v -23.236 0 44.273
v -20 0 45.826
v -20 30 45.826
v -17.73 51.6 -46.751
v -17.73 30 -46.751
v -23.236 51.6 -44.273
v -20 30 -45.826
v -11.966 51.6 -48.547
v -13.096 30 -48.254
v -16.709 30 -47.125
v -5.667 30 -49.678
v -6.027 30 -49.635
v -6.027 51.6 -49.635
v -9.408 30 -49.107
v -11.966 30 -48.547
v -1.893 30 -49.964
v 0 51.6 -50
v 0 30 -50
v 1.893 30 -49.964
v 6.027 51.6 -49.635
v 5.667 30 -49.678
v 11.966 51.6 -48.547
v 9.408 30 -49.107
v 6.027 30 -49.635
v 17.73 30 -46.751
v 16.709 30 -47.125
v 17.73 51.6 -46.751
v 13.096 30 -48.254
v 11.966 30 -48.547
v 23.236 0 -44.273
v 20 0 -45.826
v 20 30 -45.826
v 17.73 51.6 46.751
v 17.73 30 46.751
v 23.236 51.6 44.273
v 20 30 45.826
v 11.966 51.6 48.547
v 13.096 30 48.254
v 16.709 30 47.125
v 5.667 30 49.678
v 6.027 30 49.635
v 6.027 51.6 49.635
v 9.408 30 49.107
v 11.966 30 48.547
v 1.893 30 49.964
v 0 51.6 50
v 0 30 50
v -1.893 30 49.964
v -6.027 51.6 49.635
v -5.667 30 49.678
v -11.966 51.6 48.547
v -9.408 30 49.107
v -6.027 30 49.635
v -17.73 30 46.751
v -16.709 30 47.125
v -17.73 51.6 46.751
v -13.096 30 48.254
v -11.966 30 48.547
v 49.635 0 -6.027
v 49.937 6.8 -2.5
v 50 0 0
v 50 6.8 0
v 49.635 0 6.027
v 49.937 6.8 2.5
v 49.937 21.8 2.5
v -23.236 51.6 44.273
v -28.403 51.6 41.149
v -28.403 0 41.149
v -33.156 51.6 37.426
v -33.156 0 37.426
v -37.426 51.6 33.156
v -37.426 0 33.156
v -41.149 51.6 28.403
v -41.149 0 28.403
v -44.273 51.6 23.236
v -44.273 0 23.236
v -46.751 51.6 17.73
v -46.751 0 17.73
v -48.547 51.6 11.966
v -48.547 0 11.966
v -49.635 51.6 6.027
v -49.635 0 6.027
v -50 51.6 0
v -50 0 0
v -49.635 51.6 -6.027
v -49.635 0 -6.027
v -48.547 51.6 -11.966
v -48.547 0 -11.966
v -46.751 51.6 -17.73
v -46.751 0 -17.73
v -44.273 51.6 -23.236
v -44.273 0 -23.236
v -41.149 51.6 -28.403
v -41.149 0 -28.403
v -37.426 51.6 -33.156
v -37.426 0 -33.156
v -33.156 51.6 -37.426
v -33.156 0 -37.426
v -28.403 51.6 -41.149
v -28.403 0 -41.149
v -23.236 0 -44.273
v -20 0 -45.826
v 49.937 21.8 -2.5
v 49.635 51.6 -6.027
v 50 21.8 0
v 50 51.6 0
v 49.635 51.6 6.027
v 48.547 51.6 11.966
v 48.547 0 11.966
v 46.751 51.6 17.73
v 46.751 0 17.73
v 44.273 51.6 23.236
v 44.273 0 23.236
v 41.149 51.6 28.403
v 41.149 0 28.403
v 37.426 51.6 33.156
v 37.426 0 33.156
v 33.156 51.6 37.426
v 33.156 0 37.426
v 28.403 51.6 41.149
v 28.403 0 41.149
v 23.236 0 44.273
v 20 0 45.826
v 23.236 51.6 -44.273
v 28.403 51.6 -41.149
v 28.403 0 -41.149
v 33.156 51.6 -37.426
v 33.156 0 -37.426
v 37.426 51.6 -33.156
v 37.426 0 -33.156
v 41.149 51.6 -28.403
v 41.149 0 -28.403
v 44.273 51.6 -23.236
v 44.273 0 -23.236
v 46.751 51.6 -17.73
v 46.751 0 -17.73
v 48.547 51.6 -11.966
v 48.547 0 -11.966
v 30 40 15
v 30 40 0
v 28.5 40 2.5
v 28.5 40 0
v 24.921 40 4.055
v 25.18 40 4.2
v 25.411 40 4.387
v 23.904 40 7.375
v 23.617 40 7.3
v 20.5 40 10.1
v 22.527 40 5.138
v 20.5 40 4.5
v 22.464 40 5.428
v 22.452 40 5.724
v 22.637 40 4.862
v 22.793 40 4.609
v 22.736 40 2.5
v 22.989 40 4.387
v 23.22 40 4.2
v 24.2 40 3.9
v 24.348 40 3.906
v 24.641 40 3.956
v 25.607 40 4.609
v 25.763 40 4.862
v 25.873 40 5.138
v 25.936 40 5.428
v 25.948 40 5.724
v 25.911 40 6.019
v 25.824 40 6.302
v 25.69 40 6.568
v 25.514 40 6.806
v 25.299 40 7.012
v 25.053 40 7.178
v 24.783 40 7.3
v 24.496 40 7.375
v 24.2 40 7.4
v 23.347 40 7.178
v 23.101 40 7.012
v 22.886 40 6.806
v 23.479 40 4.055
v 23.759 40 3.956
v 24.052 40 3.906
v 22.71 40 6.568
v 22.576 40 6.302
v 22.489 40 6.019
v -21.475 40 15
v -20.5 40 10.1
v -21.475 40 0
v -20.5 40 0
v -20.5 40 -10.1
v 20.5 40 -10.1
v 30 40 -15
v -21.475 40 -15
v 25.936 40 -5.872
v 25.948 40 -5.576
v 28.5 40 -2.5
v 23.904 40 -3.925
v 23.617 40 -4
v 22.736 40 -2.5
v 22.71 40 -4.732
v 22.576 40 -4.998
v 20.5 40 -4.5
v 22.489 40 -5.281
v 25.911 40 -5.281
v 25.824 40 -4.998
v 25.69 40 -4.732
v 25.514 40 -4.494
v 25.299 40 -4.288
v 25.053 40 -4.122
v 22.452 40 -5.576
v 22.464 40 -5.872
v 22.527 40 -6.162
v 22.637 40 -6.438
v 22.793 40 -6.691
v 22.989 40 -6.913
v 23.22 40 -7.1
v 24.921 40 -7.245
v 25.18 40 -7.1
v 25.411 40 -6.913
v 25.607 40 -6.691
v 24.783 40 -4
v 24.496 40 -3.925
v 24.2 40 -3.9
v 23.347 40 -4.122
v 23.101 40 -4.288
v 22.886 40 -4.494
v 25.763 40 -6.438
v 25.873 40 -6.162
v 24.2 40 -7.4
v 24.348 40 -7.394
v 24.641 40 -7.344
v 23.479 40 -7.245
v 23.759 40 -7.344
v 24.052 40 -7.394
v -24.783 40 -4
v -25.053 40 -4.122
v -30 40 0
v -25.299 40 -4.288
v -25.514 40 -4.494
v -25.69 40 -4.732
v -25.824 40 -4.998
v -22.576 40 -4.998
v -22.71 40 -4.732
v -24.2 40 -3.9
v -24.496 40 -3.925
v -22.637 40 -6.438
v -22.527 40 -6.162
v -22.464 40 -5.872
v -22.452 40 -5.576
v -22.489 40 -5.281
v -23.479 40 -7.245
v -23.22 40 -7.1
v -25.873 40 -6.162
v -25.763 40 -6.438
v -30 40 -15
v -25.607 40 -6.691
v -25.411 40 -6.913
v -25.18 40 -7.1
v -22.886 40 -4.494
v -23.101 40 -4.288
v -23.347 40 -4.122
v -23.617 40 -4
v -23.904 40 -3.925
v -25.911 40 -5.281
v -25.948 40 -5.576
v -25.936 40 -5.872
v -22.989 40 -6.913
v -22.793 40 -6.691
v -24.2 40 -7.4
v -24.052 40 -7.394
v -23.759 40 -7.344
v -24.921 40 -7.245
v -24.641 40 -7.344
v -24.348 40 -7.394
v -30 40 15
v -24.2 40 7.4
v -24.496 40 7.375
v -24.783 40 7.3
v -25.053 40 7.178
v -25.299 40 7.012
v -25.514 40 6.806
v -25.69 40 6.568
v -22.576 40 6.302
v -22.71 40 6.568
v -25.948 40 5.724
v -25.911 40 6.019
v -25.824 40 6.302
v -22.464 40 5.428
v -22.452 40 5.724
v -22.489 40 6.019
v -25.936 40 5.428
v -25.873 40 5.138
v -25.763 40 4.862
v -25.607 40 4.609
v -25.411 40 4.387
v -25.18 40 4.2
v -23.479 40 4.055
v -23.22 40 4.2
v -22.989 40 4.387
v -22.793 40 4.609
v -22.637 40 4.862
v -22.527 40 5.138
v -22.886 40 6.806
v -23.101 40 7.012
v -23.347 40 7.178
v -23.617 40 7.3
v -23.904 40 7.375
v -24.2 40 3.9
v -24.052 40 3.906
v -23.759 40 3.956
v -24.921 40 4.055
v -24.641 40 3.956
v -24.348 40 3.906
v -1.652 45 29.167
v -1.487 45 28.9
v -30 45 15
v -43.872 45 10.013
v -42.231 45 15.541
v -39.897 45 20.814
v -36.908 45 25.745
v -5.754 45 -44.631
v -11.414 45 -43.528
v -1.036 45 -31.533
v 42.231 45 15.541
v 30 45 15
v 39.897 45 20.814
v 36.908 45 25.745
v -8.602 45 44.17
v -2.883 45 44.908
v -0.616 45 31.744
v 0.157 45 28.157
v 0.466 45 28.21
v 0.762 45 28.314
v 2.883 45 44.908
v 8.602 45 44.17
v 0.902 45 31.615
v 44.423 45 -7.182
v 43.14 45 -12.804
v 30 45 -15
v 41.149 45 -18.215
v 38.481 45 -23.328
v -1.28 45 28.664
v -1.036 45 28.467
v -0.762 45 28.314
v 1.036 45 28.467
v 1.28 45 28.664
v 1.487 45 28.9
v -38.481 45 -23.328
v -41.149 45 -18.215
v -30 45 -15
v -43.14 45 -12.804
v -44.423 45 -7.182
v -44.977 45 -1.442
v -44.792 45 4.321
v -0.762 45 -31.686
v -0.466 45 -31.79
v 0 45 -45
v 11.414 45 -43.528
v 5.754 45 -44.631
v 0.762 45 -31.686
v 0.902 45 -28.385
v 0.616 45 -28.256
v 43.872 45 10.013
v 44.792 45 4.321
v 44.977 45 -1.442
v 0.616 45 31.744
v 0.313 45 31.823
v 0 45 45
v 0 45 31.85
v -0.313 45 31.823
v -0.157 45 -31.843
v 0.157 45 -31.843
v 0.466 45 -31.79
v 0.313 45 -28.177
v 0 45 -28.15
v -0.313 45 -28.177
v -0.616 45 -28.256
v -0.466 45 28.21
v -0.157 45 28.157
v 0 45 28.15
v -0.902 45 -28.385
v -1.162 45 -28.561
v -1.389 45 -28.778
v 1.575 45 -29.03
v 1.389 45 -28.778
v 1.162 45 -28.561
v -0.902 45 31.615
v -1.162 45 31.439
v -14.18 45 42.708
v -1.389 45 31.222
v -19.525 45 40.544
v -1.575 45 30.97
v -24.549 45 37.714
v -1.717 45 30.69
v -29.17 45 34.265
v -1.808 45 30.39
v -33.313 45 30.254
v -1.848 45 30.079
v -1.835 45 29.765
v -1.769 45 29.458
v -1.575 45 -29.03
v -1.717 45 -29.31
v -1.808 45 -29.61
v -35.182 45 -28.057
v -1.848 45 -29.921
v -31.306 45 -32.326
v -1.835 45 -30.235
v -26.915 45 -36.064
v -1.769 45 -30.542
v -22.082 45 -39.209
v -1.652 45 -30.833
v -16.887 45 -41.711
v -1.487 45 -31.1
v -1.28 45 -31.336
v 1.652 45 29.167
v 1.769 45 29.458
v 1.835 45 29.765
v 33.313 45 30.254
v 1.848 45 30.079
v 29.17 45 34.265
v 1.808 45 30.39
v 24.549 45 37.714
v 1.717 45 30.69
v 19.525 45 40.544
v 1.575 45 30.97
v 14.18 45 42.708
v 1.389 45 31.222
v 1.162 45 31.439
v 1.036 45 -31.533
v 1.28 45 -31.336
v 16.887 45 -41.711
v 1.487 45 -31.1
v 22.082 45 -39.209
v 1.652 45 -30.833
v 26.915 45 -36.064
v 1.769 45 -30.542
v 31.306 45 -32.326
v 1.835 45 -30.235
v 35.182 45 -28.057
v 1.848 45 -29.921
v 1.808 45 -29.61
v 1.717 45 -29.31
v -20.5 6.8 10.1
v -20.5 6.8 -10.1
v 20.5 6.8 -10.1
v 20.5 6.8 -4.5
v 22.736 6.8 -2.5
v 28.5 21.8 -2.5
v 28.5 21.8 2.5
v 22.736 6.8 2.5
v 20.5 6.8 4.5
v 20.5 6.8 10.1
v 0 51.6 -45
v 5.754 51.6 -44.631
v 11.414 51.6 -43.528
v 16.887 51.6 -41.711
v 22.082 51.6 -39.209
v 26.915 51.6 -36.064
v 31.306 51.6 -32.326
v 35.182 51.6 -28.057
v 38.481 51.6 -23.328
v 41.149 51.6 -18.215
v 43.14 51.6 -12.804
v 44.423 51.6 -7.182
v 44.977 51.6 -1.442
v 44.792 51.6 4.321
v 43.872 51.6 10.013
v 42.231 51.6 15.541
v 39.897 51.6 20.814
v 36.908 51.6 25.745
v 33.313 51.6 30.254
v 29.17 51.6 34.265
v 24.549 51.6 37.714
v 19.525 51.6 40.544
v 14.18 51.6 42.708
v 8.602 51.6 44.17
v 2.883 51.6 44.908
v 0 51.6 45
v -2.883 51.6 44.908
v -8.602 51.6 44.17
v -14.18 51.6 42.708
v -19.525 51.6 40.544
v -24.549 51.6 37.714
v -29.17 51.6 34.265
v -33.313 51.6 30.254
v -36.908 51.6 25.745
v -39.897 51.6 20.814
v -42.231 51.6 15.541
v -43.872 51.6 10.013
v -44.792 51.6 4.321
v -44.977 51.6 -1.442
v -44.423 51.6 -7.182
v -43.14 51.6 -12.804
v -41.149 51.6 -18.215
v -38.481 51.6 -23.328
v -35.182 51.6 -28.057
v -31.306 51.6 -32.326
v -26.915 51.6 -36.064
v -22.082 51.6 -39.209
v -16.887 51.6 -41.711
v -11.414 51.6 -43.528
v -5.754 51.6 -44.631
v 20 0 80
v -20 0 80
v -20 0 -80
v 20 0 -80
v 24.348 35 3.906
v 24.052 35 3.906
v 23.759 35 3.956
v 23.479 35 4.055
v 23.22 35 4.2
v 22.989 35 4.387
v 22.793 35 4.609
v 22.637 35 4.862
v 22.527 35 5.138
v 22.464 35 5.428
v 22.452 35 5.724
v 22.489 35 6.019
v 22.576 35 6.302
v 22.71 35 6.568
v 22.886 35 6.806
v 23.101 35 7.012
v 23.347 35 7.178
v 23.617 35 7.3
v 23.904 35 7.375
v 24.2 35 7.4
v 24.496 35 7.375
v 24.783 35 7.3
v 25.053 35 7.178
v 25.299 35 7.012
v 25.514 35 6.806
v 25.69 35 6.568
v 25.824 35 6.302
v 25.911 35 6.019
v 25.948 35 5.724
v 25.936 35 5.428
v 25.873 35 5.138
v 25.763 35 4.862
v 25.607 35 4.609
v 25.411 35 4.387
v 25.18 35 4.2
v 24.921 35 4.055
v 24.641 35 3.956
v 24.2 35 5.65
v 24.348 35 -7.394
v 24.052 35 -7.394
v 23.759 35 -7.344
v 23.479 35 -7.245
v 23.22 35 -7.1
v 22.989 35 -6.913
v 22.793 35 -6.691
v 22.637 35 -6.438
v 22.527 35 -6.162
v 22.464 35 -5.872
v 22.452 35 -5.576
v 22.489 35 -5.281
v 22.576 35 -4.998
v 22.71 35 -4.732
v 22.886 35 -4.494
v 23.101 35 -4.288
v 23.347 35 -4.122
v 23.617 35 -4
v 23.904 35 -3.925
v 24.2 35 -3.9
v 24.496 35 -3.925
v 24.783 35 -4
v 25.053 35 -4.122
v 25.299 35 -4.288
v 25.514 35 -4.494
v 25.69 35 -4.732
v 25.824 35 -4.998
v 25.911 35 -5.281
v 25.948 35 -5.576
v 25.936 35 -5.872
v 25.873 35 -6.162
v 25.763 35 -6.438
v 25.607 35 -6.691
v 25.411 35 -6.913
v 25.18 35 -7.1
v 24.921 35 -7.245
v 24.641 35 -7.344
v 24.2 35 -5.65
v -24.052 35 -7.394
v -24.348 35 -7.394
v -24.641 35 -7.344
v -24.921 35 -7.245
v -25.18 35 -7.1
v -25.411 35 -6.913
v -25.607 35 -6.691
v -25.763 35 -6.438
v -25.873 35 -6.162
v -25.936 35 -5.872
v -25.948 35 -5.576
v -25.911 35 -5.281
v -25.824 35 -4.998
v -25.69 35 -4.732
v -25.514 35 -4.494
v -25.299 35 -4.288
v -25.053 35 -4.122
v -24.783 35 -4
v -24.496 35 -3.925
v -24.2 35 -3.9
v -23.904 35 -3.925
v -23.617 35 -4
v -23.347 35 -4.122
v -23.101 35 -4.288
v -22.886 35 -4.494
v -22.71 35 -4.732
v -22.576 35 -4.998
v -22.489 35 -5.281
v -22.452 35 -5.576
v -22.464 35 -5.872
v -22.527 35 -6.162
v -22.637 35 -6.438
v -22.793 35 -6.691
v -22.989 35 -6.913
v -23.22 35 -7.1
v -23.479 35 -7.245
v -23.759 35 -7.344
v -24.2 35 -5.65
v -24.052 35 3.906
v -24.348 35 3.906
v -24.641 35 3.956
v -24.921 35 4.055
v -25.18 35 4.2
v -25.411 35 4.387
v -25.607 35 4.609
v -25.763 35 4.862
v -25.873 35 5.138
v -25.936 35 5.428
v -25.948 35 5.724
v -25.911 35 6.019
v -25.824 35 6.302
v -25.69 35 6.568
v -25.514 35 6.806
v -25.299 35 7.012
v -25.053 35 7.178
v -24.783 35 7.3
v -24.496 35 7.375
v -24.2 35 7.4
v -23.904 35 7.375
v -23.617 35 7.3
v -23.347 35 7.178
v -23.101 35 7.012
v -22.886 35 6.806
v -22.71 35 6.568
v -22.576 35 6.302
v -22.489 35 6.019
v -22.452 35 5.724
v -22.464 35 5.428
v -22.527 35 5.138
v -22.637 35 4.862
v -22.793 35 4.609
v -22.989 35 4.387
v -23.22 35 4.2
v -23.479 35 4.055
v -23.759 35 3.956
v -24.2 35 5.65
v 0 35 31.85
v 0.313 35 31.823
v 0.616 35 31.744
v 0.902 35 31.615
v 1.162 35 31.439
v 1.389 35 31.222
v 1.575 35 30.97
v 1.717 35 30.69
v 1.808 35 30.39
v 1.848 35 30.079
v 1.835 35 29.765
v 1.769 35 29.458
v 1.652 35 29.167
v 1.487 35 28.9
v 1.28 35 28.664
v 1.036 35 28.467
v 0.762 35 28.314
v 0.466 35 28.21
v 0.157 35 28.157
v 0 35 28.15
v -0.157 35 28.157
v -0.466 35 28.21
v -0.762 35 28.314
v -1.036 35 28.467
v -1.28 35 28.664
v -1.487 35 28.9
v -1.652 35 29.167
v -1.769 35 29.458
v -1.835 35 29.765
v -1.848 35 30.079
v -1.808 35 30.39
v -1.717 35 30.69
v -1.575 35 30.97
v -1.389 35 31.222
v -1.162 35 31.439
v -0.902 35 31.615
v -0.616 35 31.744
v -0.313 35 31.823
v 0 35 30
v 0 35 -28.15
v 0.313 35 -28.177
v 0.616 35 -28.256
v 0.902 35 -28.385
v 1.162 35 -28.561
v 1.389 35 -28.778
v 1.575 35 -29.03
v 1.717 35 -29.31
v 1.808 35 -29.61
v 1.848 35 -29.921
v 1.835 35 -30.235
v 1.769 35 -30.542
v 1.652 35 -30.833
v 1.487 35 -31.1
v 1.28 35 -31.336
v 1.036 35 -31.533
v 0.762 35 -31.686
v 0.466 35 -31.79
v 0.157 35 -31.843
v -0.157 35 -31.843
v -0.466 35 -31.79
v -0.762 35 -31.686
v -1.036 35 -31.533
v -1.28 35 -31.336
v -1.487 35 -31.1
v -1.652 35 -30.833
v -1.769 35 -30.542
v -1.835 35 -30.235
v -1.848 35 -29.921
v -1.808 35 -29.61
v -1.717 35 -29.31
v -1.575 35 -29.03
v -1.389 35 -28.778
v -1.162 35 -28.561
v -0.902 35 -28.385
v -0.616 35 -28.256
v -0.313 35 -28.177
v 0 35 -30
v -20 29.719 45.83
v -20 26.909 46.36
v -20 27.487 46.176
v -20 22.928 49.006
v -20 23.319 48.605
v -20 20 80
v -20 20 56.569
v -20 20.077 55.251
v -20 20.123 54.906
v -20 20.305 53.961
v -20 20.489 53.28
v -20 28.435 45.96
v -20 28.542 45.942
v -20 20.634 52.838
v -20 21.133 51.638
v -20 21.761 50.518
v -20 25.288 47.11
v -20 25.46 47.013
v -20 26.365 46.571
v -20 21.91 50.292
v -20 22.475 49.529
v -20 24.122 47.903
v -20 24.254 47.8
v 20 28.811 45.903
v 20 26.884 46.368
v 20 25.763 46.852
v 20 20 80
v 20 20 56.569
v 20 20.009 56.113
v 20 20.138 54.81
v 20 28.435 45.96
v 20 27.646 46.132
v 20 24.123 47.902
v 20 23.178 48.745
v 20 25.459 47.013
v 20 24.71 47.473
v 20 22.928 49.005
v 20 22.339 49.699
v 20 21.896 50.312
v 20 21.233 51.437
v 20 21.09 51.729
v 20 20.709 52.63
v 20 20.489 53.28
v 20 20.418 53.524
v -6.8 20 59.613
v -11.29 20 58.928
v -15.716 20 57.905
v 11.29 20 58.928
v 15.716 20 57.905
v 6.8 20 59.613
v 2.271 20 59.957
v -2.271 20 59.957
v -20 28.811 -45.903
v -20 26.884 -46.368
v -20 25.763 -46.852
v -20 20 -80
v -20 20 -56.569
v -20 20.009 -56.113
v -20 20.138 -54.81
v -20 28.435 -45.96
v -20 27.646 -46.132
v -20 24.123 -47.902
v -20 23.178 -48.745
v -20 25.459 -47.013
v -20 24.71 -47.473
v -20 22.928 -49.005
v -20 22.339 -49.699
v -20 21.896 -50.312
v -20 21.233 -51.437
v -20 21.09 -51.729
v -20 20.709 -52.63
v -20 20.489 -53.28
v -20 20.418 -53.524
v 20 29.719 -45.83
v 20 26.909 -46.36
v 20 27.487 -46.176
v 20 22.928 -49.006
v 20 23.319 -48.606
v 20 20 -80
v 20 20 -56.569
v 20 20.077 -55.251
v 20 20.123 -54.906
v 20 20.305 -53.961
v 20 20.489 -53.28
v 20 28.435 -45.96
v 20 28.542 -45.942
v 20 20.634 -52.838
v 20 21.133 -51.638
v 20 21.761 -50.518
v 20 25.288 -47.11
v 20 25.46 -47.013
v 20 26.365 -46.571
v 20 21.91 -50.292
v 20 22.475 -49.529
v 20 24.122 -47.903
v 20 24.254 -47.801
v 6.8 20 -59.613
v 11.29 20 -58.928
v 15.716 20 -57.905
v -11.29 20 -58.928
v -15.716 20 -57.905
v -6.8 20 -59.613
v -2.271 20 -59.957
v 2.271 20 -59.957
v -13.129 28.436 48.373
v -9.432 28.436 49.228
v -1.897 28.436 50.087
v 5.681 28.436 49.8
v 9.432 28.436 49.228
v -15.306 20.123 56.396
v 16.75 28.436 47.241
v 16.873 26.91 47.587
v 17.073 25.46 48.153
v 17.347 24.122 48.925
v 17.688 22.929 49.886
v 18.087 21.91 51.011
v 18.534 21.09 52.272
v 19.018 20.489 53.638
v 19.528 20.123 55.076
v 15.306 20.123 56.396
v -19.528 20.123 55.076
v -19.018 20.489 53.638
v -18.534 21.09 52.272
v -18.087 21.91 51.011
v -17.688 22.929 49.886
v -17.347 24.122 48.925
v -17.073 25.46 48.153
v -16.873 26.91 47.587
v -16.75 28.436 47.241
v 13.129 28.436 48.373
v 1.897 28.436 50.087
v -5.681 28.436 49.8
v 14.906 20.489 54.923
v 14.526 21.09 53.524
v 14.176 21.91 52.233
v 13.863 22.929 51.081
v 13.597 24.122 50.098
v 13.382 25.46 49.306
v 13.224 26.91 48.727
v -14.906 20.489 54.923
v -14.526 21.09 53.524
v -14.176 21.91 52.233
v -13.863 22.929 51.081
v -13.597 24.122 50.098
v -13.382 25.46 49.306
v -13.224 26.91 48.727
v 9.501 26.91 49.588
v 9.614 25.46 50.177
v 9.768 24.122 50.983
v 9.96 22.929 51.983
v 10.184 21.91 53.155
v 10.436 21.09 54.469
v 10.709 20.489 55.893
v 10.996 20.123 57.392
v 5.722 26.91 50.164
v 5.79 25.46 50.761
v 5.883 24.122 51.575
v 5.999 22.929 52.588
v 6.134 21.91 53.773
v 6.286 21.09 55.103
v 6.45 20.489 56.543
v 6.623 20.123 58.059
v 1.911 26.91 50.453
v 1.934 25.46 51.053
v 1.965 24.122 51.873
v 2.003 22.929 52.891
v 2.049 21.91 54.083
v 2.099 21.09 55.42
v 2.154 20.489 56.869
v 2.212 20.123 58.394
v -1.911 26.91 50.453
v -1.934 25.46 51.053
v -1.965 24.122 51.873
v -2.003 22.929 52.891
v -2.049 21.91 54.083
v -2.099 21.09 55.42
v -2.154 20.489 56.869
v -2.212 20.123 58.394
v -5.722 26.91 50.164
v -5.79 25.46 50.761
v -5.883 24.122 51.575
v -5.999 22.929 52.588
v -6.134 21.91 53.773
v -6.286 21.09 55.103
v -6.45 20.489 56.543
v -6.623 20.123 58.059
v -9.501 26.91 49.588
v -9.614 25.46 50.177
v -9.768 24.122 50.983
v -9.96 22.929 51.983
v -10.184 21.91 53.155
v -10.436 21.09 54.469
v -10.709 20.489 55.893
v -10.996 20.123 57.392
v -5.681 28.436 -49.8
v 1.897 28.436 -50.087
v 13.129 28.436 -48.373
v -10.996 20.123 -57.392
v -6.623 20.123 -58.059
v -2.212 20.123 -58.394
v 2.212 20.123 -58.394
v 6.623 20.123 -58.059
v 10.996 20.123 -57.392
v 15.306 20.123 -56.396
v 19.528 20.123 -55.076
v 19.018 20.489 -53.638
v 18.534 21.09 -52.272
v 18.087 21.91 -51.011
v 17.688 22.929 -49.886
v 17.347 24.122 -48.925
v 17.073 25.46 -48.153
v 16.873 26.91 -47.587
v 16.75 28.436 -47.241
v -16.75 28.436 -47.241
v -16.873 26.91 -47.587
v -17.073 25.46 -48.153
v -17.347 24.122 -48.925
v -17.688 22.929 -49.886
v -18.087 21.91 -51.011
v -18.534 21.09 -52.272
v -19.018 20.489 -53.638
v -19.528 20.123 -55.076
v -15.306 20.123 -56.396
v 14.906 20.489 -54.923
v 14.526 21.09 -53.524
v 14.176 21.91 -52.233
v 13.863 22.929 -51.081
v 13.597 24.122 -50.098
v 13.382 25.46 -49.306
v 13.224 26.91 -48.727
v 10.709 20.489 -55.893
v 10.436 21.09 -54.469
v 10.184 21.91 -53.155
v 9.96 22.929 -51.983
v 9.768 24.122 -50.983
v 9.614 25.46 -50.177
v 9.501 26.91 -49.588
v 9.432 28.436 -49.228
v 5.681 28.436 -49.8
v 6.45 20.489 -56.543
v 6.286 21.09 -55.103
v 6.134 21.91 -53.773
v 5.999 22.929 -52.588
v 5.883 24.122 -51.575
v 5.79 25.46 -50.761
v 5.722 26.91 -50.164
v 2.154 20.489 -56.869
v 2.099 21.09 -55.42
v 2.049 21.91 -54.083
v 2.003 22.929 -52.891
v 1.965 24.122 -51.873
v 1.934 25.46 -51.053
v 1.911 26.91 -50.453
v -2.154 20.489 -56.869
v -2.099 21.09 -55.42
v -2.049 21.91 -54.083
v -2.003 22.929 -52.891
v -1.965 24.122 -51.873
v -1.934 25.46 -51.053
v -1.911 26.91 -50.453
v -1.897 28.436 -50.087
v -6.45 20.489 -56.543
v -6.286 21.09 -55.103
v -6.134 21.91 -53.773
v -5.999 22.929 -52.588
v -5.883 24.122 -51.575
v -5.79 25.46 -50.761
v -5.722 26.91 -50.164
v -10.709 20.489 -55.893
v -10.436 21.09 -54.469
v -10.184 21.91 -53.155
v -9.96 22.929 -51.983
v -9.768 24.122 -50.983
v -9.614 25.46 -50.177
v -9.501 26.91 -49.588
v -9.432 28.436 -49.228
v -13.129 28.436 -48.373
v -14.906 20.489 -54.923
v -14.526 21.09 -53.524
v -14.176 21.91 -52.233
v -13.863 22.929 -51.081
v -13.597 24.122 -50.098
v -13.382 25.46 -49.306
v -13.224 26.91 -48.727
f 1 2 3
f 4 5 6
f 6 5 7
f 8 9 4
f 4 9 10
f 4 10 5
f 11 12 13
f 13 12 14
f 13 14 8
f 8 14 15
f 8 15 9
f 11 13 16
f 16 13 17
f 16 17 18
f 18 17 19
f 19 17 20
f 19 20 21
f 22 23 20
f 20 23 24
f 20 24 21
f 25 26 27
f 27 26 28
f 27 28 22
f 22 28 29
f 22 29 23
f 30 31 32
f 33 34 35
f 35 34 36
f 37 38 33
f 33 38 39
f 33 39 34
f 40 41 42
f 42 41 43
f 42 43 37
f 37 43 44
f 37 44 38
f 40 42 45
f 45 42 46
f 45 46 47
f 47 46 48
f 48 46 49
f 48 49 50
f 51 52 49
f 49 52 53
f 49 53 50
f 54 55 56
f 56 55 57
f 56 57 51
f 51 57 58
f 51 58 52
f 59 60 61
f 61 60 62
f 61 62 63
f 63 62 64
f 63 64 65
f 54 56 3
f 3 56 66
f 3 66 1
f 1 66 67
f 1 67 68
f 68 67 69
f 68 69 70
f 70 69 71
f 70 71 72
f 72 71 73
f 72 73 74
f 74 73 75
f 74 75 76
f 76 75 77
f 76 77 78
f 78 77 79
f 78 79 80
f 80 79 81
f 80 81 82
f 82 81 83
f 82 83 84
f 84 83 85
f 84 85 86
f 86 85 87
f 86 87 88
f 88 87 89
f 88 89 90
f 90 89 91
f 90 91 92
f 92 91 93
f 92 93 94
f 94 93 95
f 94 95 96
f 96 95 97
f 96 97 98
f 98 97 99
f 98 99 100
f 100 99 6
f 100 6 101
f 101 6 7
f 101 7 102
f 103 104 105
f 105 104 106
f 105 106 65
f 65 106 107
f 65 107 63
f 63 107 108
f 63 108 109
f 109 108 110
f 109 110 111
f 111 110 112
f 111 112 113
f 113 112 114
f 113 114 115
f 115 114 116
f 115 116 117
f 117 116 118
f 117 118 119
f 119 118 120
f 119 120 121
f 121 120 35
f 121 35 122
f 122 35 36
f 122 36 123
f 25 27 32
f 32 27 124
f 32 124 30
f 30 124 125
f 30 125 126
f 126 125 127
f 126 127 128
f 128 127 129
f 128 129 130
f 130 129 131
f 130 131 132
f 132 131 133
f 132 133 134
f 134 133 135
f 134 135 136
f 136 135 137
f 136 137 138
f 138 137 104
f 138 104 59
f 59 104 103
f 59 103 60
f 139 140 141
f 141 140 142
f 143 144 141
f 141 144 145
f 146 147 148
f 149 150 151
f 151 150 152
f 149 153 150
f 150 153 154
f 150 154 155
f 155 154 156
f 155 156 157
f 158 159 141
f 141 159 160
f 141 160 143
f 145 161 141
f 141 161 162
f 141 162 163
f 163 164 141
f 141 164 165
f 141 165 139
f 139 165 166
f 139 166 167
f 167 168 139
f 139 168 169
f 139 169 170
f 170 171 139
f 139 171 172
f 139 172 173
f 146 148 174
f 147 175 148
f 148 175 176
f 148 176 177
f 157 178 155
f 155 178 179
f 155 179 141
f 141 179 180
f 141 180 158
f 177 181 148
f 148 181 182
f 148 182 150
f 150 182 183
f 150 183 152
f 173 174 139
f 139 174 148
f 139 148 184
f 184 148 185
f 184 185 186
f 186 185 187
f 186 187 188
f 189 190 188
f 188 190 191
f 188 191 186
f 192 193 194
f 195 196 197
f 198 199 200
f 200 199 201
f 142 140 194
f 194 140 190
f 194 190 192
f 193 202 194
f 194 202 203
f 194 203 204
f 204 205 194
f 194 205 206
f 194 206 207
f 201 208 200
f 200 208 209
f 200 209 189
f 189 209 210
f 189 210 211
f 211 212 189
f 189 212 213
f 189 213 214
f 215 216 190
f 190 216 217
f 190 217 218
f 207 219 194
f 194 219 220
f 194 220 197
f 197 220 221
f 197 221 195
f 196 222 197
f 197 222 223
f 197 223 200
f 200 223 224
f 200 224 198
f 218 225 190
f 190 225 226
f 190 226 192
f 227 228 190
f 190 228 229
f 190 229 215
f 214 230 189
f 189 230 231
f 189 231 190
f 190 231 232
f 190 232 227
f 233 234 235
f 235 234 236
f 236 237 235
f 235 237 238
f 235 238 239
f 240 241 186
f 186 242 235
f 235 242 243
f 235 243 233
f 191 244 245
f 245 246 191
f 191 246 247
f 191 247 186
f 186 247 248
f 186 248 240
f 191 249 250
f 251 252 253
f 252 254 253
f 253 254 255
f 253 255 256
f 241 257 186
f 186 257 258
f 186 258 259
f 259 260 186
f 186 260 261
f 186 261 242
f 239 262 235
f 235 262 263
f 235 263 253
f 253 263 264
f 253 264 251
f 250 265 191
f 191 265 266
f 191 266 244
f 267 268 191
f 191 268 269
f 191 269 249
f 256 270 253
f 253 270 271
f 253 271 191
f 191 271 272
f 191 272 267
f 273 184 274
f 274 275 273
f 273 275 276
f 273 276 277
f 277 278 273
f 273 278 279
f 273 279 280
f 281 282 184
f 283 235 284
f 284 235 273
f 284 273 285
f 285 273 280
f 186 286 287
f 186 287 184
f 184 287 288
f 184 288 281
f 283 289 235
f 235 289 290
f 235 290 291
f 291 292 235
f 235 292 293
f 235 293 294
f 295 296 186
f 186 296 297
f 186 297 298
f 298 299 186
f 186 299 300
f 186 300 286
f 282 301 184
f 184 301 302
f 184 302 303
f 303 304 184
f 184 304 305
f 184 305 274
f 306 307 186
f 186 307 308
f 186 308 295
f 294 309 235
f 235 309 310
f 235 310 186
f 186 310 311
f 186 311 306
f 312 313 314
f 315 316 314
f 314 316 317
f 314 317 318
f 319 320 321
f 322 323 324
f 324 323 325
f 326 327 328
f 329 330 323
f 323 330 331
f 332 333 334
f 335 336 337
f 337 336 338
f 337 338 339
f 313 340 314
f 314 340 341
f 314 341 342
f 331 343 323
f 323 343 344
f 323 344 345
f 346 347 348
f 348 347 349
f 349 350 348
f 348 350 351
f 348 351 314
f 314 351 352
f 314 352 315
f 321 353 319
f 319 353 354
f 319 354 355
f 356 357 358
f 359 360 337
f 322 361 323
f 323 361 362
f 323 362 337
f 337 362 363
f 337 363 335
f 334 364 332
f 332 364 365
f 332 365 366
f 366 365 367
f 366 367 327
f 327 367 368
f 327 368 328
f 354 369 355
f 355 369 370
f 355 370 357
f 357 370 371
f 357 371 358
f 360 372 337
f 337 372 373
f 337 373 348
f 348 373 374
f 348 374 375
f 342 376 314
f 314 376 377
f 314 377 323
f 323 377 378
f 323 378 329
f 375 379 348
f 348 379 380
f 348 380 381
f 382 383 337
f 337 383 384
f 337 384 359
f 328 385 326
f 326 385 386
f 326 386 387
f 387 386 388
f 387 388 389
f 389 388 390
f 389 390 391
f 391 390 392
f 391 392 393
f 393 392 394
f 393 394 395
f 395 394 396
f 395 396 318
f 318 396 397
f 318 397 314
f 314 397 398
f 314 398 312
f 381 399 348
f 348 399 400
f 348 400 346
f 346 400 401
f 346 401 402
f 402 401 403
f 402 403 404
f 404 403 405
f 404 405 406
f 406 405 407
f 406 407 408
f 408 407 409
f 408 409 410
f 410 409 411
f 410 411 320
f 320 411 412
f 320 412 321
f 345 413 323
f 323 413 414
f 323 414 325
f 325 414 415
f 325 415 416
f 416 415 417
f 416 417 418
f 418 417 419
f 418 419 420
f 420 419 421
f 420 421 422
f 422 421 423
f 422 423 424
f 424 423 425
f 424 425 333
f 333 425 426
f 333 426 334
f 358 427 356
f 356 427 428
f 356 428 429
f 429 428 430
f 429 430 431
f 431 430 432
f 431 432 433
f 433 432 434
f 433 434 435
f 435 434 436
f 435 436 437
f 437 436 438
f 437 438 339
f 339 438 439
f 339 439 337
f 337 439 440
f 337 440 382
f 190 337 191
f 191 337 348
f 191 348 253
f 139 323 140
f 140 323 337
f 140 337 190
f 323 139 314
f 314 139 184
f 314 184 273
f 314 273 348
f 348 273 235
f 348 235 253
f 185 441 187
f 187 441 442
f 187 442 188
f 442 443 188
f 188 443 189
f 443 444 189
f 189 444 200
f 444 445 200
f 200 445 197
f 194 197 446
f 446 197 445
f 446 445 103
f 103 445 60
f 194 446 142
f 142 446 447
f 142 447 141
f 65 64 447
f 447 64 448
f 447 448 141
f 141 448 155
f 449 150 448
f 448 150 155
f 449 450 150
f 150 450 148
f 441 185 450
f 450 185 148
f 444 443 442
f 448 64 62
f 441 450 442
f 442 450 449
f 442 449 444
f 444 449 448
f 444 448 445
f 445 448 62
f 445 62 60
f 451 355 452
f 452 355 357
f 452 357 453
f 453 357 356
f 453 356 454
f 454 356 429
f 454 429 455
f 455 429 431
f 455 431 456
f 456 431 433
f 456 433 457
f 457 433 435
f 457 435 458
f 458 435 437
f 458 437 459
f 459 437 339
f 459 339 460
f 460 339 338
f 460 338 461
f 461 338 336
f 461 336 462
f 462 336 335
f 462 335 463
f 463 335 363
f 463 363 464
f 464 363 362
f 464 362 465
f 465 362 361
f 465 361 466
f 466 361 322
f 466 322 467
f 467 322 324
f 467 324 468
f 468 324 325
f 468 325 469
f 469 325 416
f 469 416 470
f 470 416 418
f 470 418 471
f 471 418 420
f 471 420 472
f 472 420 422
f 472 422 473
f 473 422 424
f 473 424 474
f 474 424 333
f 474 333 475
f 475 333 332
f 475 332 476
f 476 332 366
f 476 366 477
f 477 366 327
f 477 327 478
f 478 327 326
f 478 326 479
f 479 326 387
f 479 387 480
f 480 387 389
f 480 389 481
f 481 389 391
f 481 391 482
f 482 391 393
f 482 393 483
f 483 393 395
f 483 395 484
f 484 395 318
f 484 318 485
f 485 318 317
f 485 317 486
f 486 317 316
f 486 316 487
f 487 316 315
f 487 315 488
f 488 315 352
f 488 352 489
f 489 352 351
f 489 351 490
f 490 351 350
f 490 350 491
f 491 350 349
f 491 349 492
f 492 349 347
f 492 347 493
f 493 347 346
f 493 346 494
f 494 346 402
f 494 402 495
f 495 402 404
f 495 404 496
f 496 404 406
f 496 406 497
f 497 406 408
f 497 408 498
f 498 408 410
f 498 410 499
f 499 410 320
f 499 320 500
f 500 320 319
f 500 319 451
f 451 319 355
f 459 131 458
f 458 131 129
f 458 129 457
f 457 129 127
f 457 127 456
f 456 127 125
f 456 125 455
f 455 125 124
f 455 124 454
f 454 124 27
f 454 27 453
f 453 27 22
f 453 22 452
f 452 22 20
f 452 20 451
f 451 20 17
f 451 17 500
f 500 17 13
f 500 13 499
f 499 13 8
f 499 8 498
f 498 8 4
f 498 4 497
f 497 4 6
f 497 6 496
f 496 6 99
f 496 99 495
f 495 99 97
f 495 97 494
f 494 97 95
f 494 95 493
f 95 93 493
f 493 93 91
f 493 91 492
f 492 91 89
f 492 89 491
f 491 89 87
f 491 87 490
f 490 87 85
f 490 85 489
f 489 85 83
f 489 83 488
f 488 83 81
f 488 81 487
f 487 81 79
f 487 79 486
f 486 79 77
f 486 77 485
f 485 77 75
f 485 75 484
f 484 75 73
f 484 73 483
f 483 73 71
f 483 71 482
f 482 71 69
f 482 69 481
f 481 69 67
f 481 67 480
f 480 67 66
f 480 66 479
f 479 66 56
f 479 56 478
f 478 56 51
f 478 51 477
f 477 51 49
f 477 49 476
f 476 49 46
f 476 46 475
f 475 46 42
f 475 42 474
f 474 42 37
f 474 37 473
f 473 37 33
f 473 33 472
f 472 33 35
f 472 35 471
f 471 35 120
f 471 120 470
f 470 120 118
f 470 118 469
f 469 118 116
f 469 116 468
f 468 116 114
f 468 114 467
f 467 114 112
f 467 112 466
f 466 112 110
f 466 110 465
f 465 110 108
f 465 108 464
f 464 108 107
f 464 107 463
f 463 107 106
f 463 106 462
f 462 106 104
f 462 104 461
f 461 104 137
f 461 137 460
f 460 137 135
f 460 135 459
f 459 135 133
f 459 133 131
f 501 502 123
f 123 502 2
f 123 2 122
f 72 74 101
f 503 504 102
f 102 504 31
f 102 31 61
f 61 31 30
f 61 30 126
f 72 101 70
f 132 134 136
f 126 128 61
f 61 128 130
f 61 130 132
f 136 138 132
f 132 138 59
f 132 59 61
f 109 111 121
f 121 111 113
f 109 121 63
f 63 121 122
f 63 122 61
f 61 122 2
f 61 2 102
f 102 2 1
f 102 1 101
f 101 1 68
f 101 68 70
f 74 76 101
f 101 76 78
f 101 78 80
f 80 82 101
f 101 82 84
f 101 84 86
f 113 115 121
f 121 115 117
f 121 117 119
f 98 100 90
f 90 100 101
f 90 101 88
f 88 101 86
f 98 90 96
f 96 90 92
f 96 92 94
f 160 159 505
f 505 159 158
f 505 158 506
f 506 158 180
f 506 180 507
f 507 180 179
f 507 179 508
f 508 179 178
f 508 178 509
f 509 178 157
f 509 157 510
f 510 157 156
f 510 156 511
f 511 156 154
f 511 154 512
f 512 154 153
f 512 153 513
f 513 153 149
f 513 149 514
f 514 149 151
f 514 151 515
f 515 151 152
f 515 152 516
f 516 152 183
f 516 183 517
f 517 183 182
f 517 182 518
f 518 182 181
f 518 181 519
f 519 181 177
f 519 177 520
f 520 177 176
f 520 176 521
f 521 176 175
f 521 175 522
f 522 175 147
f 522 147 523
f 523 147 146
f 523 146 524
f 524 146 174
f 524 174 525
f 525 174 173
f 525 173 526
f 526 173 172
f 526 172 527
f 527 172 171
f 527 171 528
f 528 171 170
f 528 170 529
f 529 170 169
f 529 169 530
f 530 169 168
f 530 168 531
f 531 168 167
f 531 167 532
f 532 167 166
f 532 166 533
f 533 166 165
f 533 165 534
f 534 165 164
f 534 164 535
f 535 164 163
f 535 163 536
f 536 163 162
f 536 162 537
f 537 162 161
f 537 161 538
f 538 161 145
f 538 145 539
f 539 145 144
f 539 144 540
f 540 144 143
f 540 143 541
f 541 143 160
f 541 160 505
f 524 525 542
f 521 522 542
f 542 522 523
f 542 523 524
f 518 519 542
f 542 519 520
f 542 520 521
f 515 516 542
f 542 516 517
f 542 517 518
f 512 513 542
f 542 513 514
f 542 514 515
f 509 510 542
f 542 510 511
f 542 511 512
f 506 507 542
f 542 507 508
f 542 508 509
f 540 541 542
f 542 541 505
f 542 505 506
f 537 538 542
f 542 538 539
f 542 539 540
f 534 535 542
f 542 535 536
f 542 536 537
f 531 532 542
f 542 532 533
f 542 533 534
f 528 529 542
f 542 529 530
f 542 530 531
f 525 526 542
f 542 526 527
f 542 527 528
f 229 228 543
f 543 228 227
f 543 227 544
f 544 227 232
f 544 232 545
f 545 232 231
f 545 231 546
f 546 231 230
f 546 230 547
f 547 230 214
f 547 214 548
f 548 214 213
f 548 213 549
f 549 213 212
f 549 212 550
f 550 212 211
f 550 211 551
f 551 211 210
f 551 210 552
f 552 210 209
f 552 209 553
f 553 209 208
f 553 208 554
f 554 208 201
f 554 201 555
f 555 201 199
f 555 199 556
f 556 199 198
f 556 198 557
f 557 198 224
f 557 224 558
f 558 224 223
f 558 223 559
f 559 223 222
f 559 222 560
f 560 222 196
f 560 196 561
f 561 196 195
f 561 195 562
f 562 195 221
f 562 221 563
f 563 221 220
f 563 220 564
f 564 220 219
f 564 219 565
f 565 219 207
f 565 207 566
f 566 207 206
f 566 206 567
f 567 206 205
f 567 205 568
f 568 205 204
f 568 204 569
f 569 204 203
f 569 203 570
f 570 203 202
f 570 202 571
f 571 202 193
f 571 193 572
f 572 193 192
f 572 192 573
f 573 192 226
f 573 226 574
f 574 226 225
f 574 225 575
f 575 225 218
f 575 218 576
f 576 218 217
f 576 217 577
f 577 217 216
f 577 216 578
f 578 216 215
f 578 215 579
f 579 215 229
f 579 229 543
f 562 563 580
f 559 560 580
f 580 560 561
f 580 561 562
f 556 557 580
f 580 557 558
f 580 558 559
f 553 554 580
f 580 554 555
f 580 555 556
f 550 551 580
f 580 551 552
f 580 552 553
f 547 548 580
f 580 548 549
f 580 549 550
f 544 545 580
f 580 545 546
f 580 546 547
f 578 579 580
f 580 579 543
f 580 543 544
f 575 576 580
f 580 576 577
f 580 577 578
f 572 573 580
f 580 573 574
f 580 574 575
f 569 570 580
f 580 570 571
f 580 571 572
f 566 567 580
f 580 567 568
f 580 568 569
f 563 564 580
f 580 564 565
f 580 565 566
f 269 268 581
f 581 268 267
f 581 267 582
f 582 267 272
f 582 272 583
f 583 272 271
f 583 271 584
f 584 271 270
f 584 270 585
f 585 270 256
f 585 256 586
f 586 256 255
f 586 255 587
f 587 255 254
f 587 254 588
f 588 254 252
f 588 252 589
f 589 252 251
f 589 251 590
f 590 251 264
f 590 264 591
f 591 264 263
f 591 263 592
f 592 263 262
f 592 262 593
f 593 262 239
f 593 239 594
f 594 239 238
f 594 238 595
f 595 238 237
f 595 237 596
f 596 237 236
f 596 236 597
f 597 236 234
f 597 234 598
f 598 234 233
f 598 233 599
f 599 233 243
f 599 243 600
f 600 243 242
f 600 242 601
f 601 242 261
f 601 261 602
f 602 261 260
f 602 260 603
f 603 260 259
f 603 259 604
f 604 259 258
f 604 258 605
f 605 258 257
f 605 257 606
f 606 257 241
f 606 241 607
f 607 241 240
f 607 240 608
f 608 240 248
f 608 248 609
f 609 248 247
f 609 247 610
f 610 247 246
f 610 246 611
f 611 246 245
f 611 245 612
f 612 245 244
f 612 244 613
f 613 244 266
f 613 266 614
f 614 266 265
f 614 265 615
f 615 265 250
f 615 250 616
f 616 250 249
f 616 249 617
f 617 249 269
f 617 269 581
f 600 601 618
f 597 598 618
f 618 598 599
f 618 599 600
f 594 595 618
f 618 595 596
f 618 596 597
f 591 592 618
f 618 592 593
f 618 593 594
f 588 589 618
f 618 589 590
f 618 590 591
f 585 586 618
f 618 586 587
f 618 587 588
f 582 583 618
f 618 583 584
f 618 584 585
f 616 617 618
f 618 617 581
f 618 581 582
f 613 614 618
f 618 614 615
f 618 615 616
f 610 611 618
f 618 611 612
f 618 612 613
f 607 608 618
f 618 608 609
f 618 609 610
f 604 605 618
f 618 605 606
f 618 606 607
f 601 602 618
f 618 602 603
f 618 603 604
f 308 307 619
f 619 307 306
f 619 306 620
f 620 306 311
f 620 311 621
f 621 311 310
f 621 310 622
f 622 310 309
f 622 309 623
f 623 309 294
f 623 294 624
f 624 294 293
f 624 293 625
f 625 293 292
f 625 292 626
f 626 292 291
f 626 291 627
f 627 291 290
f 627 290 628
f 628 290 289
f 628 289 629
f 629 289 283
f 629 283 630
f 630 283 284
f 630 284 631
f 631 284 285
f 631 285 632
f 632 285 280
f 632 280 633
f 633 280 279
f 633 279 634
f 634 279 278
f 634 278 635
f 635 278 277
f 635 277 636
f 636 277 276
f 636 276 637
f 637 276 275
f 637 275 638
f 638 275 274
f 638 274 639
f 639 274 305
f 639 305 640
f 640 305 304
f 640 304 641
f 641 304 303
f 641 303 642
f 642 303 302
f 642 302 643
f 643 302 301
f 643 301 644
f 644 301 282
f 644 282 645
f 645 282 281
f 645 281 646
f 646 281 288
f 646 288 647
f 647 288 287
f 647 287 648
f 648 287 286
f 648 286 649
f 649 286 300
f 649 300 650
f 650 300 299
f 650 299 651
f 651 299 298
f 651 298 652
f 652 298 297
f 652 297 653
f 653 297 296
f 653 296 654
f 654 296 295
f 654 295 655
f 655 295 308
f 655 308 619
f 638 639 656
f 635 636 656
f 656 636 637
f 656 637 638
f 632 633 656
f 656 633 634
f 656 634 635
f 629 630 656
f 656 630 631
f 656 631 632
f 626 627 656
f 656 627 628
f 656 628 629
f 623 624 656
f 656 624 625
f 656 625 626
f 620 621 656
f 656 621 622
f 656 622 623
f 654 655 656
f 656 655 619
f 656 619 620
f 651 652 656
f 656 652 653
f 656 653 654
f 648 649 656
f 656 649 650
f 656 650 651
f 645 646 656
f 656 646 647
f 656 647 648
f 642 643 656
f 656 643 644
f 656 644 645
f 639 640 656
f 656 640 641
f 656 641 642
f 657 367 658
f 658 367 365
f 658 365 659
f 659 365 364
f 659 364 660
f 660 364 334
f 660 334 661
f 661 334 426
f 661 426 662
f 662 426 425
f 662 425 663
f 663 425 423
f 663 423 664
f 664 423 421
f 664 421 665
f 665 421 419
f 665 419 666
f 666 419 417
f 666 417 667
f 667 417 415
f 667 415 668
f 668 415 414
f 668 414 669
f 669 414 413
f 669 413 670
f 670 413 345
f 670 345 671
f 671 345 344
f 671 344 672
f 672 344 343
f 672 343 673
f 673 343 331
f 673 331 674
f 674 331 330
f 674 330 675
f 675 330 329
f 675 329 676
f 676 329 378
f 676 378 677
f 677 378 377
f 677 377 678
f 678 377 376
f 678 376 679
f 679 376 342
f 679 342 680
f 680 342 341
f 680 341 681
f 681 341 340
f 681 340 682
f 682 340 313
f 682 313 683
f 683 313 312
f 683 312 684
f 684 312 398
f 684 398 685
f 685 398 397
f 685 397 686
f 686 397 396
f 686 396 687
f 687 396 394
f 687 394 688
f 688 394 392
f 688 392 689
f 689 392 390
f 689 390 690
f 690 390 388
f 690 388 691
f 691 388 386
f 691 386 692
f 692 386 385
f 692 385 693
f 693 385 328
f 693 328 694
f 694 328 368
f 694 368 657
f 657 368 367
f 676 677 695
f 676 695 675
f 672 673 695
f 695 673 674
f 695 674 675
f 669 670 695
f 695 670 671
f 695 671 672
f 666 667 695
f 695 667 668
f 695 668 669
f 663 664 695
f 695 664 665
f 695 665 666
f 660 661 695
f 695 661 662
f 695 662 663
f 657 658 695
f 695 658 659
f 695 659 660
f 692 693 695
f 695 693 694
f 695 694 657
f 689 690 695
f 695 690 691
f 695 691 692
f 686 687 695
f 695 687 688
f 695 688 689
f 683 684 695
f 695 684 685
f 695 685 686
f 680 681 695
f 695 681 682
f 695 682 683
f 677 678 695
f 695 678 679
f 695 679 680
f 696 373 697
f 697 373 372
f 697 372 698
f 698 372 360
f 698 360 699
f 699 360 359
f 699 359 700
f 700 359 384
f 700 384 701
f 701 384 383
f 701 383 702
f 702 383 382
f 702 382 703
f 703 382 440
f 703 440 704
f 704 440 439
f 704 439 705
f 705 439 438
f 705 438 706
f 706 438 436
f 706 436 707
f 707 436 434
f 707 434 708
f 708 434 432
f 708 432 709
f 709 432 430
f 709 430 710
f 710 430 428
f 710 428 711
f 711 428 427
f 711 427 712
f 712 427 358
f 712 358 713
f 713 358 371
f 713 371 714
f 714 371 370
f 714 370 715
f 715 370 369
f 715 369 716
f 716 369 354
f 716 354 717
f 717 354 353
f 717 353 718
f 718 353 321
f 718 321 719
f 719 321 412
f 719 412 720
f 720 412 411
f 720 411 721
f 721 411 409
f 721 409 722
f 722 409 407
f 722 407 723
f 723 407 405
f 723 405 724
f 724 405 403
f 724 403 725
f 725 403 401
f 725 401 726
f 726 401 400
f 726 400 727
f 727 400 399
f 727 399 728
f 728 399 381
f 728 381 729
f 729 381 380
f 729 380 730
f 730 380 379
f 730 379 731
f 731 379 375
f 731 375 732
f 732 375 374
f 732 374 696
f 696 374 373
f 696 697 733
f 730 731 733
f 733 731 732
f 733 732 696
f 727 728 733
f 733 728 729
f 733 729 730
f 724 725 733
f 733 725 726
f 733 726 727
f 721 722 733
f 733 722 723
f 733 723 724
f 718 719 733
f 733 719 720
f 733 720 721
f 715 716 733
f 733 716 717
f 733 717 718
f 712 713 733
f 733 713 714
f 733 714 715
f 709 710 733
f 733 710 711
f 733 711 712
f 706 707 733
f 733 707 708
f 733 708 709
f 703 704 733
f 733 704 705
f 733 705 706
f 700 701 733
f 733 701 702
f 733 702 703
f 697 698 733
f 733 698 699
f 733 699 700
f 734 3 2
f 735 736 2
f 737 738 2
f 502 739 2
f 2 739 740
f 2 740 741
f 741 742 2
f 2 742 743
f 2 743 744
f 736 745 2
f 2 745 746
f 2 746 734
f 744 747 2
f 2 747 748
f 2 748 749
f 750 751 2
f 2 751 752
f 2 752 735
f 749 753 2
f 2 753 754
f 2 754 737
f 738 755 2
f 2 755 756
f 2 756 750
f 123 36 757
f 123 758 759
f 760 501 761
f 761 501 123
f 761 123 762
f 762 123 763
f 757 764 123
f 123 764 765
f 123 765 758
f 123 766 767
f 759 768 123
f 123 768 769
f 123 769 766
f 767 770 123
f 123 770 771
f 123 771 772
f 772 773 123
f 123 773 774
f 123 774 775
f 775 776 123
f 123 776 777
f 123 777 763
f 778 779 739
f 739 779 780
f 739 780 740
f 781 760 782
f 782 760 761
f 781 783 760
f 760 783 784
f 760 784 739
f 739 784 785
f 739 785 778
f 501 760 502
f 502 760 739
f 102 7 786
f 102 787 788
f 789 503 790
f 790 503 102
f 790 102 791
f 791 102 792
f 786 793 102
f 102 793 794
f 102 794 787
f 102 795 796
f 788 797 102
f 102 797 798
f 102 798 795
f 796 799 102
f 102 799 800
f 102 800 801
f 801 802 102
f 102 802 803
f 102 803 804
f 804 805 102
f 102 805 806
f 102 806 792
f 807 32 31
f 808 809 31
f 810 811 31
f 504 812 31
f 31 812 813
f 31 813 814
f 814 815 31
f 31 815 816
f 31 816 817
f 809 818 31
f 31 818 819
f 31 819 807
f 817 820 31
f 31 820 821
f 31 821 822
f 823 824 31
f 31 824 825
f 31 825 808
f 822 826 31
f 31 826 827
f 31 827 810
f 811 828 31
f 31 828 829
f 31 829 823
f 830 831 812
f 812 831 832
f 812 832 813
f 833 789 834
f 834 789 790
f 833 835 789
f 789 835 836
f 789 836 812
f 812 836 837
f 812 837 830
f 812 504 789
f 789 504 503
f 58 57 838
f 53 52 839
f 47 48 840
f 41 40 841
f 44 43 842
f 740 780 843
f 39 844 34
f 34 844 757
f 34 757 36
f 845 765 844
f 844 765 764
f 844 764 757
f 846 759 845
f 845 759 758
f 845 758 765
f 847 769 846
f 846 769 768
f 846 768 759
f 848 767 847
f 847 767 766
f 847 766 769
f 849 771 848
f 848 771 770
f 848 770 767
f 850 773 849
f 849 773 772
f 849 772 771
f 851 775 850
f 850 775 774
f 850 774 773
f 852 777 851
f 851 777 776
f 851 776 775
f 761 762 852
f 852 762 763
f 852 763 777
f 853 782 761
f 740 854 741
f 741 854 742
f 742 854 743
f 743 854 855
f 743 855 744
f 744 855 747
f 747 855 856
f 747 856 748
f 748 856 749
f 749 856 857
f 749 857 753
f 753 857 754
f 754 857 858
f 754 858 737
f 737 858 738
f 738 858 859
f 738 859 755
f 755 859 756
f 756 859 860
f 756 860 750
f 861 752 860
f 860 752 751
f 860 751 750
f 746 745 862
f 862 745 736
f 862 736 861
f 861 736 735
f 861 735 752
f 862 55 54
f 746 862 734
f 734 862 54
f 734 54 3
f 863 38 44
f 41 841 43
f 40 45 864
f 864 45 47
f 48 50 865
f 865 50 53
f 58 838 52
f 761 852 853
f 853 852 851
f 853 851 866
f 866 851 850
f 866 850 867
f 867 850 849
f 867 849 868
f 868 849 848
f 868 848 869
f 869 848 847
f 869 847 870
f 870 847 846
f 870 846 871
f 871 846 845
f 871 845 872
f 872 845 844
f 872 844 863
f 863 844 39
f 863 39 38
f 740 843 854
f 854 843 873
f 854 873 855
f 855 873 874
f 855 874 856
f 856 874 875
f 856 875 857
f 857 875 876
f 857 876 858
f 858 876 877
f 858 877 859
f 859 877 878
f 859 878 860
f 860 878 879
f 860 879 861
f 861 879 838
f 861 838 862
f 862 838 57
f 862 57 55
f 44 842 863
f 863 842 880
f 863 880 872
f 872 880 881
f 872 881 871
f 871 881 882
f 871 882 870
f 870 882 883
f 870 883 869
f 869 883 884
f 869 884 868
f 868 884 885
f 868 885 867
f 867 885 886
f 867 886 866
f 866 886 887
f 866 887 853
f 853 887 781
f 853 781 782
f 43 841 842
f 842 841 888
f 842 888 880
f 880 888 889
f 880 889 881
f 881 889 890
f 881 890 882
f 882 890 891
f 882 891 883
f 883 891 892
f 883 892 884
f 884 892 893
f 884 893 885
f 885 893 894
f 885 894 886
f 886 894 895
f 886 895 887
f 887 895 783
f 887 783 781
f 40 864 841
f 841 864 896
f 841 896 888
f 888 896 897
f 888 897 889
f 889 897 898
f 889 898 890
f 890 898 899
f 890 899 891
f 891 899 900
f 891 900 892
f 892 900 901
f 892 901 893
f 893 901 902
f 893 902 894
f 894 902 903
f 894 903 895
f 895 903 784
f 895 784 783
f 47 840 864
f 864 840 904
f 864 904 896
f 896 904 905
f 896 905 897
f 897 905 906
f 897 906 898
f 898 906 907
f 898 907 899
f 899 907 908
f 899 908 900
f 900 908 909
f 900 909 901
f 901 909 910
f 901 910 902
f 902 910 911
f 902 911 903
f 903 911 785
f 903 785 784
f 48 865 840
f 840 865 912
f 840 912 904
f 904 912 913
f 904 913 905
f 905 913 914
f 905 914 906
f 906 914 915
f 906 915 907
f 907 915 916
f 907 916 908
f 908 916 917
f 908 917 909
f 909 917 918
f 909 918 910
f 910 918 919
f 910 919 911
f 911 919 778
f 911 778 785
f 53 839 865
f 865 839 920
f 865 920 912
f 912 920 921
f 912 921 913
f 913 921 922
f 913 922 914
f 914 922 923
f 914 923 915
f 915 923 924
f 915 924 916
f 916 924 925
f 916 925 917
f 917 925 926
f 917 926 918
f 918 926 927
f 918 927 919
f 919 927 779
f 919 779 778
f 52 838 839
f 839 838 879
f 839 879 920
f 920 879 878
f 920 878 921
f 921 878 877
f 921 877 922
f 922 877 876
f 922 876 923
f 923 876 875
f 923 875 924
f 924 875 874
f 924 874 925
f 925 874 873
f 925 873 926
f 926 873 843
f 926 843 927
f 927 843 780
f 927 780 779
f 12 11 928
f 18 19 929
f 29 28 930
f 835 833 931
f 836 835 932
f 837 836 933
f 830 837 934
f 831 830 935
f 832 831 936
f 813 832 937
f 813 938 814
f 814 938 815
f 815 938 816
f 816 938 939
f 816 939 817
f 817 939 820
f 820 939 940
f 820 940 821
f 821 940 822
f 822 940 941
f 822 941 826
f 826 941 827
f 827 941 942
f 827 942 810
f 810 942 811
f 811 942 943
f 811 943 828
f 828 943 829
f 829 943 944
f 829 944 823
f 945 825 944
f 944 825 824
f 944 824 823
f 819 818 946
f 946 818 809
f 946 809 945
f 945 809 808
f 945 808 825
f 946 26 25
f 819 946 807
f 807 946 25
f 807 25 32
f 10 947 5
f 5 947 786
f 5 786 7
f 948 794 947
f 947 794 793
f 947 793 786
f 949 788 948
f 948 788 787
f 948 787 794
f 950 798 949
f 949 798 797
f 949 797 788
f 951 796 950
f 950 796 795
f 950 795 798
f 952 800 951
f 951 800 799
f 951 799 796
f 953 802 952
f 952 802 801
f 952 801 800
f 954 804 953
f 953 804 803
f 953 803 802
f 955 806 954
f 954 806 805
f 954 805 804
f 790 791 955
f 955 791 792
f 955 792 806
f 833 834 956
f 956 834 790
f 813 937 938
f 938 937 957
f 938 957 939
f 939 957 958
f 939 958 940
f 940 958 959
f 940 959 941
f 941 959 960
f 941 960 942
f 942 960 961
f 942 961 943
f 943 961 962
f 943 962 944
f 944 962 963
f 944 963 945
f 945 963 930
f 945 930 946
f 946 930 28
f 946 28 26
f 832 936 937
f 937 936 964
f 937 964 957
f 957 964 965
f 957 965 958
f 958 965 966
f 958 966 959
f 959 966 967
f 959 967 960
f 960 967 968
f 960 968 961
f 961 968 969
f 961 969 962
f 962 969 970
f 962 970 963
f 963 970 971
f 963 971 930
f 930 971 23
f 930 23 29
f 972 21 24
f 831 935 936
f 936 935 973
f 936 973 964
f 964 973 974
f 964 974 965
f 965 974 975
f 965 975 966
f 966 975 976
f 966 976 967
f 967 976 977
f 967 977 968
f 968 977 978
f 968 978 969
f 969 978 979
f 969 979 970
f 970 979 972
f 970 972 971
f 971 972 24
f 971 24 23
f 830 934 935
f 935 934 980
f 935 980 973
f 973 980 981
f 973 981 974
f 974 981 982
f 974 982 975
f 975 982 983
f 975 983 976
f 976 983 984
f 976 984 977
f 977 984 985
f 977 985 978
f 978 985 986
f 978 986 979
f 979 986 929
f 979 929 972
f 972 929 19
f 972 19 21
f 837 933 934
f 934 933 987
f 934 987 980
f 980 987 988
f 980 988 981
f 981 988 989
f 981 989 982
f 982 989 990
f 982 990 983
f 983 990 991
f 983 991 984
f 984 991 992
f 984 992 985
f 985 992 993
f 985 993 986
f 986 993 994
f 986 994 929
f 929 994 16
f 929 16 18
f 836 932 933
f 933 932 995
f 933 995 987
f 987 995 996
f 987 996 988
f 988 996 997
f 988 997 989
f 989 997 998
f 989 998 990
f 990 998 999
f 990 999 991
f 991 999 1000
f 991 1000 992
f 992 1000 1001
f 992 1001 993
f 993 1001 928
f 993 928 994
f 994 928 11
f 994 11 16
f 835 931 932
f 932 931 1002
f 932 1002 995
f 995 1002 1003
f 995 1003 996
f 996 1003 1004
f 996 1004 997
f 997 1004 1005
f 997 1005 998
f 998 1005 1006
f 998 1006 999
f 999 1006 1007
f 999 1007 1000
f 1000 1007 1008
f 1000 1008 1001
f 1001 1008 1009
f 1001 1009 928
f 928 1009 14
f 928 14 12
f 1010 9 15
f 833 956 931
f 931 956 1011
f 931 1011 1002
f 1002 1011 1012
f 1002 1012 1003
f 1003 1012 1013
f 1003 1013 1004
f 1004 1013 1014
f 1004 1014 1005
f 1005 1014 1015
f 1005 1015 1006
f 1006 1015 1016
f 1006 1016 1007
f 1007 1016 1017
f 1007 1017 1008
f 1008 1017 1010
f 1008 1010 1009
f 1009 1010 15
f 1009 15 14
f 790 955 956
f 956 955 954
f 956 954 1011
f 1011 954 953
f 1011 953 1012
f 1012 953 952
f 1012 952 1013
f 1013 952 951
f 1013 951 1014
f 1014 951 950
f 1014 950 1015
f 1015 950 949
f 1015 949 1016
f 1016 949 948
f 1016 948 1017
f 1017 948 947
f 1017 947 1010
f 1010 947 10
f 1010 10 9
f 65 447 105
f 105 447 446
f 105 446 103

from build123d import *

# Parameters (mm, degrees)
ESQUISSE1_R             = 50
BOSS_EXTRU_1_DEPTH      = 45
ESQUISSE2_W             = 60
ESQUISSE2_H             = 30
ENL_V_MAT_EXTRU_2_DEPTH = 5
ENL_V_MAT_EXTRU_4_DEPTH = 38.2
ESQUISSE2_4_R           = 50
ESQUISSE2_4_R_2         = 45
BOSS_EXTRU_2_DEPTH      = 6.6
ESQUISSE2_5_R           = 1.75
ENL_V_MAT_EXTRU_5_DEPTH = 10
ESQUISSE3_R             = 1.85
ENL_V_MAT_EXTRU_6_DEPTH = 10
BOSS_EXTRU_3_START      = -13
ESQUISSE4_W             = 40
ESQUISSE4_H             = 20
BOSS_EXTRU_3_DEPTH      = 43
CONG_1_R                = 10
ESQUISSE5_W             = 5
ESQUISSE5_H             = 15
ENL_V_MAT_EXTRU_7_DEPTH = 124.388856936


with BuildPart() as part:
    # Esquisse1 → Boss.-Extru.1 (new body)
    with BuildSketch(Plane(origin=(0, 0, 0), x_dir=(1, 0, 0), z_dir=(0, 1, 0))):
        Circle(ESQUISSE1_R)
    extrude(amount=BOSS_EXTRU_1_DEPTH)

    # Esquisse2 → Enlèv. mat.-Extru.2 (cut)
    with BuildSketch(Plane(origin=(0, 45, 0), x_dir=(1, 0, 0), z_dir=(0, 1, 0))):
        Rectangle(ESQUISSE2_W, ESQUISSE2_H)
    extrude(amount=-ENL_V_MAT_EXTRU_2_DEPTH, mode=Mode.SUBTRACT)

    # Esquisse2<3> → Enlèv. mat.-Extru.4 (cut)
    with BuildSketch(Plane(origin=(0, 45, 0), x_dir=(1, 0, 0), z_dir=(0, 1, 0))):
        Polygon((-20.5, 10.1), (20.5, 10.1), (20.5, 4.5), (22.736067977, 2.5), (28.5, 2.5), (28.5, -2.5), (22.736067977, -2.5), (20.5, -4.5), (20.5, -10.1), (-20.5, -10.1), align=None)
    extrude(amount=-ENL_V_MAT_EXTRU_4_DEPTH, mode=Mode.SUBTRACT)

    # Esquisse2<4> → Boss.-Extru.2 (add)
    with BuildSketch(Plane(origin=(0, 45, 0), x_dir=(1, 0, 0), z_dir=(0, 1, 0))):
        Circle(ESQUISSE2_4_R)
        Circle(ESQUISSE2_4_R_2, mode=Mode.SUBTRACT)
    extrude(amount=BOSS_EXTRU_2_DEPTH)

    # Esquisse2<5> → Enlèv. mat.-Extru.5 (cut)
    with BuildSketch(Plane(origin=(0, 45, 0), x_dir=(1, 0, 0), z_dir=(0, 1, 0))):
        with Locations((-24.2, 5.65)):
            Circle(ESQUISSE2_5_R)
        with Locations((-24.2, -5.65)):
            Circle(ESQUISSE2_5_R)
        with Locations((24.2, -5.65)):
            Circle(ESQUISSE2_5_R)
        with Locations((24.2, 5.65)):
            Circle(ESQUISSE2_5_R)
    extrude(amount=-ENL_V_MAT_EXTRU_5_DEPTH, mode=Mode.SUBTRACT)

    # Esquisse3 → Enlèv. mat.-Extru.6 (cut)
    with BuildSketch(Plane(origin=(0, 45, 0), x_dir=(1, 0, 0), z_dir=(0, 1, 0))):
        with Locations((0, 30)):
            Circle(ESQUISSE3_R)
        with Locations((0, -30)):
            Circle(ESQUISSE3_R)
    extrude(amount=-ENL_V_MAT_EXTRU_6_DEPTH, mode=Mode.SUBTRACT)

    # Esquisse4 → Boss.-Extru.3 (add)
    with BuildSketch(Plane.XY.offset(50).offset(BOSS_EXTRU_3_START)):
        with Locations((0, 10)):
            Rectangle(ESQUISSE4_W, ESQUISSE4_H)
    boss_extru_3 = extrude(amount=BOSS_EXTRU_3_DEPTH)

    # Symétrie1: Boss.-Extru.3 across plane
    add(boss_extru_3.mirror(Plane.XY))

    # Congé1
    cong_1_edges = [part.edges().sort_by_distance(p)[0] for p in [
        (0, 20, 50),
        (0, 20, -50),
    ]]
    fillet(cong_1_edges, radius=CONG_1_R)

    # Esquisse5 → Enlèv. mat.-Extru.7 (cut, through all)
    with BuildSketch(Plane.ZY.offset(-28.5)):
        with Locations((0, 14.3)):
            Rectangle(ESQUISSE5_W, ESQUISSE5_H)
    extrude(amount=-ENL_V_MAT_EXTRU_7_DEPTH, mode=Mode.SUBTRACT)


solid = part.part
